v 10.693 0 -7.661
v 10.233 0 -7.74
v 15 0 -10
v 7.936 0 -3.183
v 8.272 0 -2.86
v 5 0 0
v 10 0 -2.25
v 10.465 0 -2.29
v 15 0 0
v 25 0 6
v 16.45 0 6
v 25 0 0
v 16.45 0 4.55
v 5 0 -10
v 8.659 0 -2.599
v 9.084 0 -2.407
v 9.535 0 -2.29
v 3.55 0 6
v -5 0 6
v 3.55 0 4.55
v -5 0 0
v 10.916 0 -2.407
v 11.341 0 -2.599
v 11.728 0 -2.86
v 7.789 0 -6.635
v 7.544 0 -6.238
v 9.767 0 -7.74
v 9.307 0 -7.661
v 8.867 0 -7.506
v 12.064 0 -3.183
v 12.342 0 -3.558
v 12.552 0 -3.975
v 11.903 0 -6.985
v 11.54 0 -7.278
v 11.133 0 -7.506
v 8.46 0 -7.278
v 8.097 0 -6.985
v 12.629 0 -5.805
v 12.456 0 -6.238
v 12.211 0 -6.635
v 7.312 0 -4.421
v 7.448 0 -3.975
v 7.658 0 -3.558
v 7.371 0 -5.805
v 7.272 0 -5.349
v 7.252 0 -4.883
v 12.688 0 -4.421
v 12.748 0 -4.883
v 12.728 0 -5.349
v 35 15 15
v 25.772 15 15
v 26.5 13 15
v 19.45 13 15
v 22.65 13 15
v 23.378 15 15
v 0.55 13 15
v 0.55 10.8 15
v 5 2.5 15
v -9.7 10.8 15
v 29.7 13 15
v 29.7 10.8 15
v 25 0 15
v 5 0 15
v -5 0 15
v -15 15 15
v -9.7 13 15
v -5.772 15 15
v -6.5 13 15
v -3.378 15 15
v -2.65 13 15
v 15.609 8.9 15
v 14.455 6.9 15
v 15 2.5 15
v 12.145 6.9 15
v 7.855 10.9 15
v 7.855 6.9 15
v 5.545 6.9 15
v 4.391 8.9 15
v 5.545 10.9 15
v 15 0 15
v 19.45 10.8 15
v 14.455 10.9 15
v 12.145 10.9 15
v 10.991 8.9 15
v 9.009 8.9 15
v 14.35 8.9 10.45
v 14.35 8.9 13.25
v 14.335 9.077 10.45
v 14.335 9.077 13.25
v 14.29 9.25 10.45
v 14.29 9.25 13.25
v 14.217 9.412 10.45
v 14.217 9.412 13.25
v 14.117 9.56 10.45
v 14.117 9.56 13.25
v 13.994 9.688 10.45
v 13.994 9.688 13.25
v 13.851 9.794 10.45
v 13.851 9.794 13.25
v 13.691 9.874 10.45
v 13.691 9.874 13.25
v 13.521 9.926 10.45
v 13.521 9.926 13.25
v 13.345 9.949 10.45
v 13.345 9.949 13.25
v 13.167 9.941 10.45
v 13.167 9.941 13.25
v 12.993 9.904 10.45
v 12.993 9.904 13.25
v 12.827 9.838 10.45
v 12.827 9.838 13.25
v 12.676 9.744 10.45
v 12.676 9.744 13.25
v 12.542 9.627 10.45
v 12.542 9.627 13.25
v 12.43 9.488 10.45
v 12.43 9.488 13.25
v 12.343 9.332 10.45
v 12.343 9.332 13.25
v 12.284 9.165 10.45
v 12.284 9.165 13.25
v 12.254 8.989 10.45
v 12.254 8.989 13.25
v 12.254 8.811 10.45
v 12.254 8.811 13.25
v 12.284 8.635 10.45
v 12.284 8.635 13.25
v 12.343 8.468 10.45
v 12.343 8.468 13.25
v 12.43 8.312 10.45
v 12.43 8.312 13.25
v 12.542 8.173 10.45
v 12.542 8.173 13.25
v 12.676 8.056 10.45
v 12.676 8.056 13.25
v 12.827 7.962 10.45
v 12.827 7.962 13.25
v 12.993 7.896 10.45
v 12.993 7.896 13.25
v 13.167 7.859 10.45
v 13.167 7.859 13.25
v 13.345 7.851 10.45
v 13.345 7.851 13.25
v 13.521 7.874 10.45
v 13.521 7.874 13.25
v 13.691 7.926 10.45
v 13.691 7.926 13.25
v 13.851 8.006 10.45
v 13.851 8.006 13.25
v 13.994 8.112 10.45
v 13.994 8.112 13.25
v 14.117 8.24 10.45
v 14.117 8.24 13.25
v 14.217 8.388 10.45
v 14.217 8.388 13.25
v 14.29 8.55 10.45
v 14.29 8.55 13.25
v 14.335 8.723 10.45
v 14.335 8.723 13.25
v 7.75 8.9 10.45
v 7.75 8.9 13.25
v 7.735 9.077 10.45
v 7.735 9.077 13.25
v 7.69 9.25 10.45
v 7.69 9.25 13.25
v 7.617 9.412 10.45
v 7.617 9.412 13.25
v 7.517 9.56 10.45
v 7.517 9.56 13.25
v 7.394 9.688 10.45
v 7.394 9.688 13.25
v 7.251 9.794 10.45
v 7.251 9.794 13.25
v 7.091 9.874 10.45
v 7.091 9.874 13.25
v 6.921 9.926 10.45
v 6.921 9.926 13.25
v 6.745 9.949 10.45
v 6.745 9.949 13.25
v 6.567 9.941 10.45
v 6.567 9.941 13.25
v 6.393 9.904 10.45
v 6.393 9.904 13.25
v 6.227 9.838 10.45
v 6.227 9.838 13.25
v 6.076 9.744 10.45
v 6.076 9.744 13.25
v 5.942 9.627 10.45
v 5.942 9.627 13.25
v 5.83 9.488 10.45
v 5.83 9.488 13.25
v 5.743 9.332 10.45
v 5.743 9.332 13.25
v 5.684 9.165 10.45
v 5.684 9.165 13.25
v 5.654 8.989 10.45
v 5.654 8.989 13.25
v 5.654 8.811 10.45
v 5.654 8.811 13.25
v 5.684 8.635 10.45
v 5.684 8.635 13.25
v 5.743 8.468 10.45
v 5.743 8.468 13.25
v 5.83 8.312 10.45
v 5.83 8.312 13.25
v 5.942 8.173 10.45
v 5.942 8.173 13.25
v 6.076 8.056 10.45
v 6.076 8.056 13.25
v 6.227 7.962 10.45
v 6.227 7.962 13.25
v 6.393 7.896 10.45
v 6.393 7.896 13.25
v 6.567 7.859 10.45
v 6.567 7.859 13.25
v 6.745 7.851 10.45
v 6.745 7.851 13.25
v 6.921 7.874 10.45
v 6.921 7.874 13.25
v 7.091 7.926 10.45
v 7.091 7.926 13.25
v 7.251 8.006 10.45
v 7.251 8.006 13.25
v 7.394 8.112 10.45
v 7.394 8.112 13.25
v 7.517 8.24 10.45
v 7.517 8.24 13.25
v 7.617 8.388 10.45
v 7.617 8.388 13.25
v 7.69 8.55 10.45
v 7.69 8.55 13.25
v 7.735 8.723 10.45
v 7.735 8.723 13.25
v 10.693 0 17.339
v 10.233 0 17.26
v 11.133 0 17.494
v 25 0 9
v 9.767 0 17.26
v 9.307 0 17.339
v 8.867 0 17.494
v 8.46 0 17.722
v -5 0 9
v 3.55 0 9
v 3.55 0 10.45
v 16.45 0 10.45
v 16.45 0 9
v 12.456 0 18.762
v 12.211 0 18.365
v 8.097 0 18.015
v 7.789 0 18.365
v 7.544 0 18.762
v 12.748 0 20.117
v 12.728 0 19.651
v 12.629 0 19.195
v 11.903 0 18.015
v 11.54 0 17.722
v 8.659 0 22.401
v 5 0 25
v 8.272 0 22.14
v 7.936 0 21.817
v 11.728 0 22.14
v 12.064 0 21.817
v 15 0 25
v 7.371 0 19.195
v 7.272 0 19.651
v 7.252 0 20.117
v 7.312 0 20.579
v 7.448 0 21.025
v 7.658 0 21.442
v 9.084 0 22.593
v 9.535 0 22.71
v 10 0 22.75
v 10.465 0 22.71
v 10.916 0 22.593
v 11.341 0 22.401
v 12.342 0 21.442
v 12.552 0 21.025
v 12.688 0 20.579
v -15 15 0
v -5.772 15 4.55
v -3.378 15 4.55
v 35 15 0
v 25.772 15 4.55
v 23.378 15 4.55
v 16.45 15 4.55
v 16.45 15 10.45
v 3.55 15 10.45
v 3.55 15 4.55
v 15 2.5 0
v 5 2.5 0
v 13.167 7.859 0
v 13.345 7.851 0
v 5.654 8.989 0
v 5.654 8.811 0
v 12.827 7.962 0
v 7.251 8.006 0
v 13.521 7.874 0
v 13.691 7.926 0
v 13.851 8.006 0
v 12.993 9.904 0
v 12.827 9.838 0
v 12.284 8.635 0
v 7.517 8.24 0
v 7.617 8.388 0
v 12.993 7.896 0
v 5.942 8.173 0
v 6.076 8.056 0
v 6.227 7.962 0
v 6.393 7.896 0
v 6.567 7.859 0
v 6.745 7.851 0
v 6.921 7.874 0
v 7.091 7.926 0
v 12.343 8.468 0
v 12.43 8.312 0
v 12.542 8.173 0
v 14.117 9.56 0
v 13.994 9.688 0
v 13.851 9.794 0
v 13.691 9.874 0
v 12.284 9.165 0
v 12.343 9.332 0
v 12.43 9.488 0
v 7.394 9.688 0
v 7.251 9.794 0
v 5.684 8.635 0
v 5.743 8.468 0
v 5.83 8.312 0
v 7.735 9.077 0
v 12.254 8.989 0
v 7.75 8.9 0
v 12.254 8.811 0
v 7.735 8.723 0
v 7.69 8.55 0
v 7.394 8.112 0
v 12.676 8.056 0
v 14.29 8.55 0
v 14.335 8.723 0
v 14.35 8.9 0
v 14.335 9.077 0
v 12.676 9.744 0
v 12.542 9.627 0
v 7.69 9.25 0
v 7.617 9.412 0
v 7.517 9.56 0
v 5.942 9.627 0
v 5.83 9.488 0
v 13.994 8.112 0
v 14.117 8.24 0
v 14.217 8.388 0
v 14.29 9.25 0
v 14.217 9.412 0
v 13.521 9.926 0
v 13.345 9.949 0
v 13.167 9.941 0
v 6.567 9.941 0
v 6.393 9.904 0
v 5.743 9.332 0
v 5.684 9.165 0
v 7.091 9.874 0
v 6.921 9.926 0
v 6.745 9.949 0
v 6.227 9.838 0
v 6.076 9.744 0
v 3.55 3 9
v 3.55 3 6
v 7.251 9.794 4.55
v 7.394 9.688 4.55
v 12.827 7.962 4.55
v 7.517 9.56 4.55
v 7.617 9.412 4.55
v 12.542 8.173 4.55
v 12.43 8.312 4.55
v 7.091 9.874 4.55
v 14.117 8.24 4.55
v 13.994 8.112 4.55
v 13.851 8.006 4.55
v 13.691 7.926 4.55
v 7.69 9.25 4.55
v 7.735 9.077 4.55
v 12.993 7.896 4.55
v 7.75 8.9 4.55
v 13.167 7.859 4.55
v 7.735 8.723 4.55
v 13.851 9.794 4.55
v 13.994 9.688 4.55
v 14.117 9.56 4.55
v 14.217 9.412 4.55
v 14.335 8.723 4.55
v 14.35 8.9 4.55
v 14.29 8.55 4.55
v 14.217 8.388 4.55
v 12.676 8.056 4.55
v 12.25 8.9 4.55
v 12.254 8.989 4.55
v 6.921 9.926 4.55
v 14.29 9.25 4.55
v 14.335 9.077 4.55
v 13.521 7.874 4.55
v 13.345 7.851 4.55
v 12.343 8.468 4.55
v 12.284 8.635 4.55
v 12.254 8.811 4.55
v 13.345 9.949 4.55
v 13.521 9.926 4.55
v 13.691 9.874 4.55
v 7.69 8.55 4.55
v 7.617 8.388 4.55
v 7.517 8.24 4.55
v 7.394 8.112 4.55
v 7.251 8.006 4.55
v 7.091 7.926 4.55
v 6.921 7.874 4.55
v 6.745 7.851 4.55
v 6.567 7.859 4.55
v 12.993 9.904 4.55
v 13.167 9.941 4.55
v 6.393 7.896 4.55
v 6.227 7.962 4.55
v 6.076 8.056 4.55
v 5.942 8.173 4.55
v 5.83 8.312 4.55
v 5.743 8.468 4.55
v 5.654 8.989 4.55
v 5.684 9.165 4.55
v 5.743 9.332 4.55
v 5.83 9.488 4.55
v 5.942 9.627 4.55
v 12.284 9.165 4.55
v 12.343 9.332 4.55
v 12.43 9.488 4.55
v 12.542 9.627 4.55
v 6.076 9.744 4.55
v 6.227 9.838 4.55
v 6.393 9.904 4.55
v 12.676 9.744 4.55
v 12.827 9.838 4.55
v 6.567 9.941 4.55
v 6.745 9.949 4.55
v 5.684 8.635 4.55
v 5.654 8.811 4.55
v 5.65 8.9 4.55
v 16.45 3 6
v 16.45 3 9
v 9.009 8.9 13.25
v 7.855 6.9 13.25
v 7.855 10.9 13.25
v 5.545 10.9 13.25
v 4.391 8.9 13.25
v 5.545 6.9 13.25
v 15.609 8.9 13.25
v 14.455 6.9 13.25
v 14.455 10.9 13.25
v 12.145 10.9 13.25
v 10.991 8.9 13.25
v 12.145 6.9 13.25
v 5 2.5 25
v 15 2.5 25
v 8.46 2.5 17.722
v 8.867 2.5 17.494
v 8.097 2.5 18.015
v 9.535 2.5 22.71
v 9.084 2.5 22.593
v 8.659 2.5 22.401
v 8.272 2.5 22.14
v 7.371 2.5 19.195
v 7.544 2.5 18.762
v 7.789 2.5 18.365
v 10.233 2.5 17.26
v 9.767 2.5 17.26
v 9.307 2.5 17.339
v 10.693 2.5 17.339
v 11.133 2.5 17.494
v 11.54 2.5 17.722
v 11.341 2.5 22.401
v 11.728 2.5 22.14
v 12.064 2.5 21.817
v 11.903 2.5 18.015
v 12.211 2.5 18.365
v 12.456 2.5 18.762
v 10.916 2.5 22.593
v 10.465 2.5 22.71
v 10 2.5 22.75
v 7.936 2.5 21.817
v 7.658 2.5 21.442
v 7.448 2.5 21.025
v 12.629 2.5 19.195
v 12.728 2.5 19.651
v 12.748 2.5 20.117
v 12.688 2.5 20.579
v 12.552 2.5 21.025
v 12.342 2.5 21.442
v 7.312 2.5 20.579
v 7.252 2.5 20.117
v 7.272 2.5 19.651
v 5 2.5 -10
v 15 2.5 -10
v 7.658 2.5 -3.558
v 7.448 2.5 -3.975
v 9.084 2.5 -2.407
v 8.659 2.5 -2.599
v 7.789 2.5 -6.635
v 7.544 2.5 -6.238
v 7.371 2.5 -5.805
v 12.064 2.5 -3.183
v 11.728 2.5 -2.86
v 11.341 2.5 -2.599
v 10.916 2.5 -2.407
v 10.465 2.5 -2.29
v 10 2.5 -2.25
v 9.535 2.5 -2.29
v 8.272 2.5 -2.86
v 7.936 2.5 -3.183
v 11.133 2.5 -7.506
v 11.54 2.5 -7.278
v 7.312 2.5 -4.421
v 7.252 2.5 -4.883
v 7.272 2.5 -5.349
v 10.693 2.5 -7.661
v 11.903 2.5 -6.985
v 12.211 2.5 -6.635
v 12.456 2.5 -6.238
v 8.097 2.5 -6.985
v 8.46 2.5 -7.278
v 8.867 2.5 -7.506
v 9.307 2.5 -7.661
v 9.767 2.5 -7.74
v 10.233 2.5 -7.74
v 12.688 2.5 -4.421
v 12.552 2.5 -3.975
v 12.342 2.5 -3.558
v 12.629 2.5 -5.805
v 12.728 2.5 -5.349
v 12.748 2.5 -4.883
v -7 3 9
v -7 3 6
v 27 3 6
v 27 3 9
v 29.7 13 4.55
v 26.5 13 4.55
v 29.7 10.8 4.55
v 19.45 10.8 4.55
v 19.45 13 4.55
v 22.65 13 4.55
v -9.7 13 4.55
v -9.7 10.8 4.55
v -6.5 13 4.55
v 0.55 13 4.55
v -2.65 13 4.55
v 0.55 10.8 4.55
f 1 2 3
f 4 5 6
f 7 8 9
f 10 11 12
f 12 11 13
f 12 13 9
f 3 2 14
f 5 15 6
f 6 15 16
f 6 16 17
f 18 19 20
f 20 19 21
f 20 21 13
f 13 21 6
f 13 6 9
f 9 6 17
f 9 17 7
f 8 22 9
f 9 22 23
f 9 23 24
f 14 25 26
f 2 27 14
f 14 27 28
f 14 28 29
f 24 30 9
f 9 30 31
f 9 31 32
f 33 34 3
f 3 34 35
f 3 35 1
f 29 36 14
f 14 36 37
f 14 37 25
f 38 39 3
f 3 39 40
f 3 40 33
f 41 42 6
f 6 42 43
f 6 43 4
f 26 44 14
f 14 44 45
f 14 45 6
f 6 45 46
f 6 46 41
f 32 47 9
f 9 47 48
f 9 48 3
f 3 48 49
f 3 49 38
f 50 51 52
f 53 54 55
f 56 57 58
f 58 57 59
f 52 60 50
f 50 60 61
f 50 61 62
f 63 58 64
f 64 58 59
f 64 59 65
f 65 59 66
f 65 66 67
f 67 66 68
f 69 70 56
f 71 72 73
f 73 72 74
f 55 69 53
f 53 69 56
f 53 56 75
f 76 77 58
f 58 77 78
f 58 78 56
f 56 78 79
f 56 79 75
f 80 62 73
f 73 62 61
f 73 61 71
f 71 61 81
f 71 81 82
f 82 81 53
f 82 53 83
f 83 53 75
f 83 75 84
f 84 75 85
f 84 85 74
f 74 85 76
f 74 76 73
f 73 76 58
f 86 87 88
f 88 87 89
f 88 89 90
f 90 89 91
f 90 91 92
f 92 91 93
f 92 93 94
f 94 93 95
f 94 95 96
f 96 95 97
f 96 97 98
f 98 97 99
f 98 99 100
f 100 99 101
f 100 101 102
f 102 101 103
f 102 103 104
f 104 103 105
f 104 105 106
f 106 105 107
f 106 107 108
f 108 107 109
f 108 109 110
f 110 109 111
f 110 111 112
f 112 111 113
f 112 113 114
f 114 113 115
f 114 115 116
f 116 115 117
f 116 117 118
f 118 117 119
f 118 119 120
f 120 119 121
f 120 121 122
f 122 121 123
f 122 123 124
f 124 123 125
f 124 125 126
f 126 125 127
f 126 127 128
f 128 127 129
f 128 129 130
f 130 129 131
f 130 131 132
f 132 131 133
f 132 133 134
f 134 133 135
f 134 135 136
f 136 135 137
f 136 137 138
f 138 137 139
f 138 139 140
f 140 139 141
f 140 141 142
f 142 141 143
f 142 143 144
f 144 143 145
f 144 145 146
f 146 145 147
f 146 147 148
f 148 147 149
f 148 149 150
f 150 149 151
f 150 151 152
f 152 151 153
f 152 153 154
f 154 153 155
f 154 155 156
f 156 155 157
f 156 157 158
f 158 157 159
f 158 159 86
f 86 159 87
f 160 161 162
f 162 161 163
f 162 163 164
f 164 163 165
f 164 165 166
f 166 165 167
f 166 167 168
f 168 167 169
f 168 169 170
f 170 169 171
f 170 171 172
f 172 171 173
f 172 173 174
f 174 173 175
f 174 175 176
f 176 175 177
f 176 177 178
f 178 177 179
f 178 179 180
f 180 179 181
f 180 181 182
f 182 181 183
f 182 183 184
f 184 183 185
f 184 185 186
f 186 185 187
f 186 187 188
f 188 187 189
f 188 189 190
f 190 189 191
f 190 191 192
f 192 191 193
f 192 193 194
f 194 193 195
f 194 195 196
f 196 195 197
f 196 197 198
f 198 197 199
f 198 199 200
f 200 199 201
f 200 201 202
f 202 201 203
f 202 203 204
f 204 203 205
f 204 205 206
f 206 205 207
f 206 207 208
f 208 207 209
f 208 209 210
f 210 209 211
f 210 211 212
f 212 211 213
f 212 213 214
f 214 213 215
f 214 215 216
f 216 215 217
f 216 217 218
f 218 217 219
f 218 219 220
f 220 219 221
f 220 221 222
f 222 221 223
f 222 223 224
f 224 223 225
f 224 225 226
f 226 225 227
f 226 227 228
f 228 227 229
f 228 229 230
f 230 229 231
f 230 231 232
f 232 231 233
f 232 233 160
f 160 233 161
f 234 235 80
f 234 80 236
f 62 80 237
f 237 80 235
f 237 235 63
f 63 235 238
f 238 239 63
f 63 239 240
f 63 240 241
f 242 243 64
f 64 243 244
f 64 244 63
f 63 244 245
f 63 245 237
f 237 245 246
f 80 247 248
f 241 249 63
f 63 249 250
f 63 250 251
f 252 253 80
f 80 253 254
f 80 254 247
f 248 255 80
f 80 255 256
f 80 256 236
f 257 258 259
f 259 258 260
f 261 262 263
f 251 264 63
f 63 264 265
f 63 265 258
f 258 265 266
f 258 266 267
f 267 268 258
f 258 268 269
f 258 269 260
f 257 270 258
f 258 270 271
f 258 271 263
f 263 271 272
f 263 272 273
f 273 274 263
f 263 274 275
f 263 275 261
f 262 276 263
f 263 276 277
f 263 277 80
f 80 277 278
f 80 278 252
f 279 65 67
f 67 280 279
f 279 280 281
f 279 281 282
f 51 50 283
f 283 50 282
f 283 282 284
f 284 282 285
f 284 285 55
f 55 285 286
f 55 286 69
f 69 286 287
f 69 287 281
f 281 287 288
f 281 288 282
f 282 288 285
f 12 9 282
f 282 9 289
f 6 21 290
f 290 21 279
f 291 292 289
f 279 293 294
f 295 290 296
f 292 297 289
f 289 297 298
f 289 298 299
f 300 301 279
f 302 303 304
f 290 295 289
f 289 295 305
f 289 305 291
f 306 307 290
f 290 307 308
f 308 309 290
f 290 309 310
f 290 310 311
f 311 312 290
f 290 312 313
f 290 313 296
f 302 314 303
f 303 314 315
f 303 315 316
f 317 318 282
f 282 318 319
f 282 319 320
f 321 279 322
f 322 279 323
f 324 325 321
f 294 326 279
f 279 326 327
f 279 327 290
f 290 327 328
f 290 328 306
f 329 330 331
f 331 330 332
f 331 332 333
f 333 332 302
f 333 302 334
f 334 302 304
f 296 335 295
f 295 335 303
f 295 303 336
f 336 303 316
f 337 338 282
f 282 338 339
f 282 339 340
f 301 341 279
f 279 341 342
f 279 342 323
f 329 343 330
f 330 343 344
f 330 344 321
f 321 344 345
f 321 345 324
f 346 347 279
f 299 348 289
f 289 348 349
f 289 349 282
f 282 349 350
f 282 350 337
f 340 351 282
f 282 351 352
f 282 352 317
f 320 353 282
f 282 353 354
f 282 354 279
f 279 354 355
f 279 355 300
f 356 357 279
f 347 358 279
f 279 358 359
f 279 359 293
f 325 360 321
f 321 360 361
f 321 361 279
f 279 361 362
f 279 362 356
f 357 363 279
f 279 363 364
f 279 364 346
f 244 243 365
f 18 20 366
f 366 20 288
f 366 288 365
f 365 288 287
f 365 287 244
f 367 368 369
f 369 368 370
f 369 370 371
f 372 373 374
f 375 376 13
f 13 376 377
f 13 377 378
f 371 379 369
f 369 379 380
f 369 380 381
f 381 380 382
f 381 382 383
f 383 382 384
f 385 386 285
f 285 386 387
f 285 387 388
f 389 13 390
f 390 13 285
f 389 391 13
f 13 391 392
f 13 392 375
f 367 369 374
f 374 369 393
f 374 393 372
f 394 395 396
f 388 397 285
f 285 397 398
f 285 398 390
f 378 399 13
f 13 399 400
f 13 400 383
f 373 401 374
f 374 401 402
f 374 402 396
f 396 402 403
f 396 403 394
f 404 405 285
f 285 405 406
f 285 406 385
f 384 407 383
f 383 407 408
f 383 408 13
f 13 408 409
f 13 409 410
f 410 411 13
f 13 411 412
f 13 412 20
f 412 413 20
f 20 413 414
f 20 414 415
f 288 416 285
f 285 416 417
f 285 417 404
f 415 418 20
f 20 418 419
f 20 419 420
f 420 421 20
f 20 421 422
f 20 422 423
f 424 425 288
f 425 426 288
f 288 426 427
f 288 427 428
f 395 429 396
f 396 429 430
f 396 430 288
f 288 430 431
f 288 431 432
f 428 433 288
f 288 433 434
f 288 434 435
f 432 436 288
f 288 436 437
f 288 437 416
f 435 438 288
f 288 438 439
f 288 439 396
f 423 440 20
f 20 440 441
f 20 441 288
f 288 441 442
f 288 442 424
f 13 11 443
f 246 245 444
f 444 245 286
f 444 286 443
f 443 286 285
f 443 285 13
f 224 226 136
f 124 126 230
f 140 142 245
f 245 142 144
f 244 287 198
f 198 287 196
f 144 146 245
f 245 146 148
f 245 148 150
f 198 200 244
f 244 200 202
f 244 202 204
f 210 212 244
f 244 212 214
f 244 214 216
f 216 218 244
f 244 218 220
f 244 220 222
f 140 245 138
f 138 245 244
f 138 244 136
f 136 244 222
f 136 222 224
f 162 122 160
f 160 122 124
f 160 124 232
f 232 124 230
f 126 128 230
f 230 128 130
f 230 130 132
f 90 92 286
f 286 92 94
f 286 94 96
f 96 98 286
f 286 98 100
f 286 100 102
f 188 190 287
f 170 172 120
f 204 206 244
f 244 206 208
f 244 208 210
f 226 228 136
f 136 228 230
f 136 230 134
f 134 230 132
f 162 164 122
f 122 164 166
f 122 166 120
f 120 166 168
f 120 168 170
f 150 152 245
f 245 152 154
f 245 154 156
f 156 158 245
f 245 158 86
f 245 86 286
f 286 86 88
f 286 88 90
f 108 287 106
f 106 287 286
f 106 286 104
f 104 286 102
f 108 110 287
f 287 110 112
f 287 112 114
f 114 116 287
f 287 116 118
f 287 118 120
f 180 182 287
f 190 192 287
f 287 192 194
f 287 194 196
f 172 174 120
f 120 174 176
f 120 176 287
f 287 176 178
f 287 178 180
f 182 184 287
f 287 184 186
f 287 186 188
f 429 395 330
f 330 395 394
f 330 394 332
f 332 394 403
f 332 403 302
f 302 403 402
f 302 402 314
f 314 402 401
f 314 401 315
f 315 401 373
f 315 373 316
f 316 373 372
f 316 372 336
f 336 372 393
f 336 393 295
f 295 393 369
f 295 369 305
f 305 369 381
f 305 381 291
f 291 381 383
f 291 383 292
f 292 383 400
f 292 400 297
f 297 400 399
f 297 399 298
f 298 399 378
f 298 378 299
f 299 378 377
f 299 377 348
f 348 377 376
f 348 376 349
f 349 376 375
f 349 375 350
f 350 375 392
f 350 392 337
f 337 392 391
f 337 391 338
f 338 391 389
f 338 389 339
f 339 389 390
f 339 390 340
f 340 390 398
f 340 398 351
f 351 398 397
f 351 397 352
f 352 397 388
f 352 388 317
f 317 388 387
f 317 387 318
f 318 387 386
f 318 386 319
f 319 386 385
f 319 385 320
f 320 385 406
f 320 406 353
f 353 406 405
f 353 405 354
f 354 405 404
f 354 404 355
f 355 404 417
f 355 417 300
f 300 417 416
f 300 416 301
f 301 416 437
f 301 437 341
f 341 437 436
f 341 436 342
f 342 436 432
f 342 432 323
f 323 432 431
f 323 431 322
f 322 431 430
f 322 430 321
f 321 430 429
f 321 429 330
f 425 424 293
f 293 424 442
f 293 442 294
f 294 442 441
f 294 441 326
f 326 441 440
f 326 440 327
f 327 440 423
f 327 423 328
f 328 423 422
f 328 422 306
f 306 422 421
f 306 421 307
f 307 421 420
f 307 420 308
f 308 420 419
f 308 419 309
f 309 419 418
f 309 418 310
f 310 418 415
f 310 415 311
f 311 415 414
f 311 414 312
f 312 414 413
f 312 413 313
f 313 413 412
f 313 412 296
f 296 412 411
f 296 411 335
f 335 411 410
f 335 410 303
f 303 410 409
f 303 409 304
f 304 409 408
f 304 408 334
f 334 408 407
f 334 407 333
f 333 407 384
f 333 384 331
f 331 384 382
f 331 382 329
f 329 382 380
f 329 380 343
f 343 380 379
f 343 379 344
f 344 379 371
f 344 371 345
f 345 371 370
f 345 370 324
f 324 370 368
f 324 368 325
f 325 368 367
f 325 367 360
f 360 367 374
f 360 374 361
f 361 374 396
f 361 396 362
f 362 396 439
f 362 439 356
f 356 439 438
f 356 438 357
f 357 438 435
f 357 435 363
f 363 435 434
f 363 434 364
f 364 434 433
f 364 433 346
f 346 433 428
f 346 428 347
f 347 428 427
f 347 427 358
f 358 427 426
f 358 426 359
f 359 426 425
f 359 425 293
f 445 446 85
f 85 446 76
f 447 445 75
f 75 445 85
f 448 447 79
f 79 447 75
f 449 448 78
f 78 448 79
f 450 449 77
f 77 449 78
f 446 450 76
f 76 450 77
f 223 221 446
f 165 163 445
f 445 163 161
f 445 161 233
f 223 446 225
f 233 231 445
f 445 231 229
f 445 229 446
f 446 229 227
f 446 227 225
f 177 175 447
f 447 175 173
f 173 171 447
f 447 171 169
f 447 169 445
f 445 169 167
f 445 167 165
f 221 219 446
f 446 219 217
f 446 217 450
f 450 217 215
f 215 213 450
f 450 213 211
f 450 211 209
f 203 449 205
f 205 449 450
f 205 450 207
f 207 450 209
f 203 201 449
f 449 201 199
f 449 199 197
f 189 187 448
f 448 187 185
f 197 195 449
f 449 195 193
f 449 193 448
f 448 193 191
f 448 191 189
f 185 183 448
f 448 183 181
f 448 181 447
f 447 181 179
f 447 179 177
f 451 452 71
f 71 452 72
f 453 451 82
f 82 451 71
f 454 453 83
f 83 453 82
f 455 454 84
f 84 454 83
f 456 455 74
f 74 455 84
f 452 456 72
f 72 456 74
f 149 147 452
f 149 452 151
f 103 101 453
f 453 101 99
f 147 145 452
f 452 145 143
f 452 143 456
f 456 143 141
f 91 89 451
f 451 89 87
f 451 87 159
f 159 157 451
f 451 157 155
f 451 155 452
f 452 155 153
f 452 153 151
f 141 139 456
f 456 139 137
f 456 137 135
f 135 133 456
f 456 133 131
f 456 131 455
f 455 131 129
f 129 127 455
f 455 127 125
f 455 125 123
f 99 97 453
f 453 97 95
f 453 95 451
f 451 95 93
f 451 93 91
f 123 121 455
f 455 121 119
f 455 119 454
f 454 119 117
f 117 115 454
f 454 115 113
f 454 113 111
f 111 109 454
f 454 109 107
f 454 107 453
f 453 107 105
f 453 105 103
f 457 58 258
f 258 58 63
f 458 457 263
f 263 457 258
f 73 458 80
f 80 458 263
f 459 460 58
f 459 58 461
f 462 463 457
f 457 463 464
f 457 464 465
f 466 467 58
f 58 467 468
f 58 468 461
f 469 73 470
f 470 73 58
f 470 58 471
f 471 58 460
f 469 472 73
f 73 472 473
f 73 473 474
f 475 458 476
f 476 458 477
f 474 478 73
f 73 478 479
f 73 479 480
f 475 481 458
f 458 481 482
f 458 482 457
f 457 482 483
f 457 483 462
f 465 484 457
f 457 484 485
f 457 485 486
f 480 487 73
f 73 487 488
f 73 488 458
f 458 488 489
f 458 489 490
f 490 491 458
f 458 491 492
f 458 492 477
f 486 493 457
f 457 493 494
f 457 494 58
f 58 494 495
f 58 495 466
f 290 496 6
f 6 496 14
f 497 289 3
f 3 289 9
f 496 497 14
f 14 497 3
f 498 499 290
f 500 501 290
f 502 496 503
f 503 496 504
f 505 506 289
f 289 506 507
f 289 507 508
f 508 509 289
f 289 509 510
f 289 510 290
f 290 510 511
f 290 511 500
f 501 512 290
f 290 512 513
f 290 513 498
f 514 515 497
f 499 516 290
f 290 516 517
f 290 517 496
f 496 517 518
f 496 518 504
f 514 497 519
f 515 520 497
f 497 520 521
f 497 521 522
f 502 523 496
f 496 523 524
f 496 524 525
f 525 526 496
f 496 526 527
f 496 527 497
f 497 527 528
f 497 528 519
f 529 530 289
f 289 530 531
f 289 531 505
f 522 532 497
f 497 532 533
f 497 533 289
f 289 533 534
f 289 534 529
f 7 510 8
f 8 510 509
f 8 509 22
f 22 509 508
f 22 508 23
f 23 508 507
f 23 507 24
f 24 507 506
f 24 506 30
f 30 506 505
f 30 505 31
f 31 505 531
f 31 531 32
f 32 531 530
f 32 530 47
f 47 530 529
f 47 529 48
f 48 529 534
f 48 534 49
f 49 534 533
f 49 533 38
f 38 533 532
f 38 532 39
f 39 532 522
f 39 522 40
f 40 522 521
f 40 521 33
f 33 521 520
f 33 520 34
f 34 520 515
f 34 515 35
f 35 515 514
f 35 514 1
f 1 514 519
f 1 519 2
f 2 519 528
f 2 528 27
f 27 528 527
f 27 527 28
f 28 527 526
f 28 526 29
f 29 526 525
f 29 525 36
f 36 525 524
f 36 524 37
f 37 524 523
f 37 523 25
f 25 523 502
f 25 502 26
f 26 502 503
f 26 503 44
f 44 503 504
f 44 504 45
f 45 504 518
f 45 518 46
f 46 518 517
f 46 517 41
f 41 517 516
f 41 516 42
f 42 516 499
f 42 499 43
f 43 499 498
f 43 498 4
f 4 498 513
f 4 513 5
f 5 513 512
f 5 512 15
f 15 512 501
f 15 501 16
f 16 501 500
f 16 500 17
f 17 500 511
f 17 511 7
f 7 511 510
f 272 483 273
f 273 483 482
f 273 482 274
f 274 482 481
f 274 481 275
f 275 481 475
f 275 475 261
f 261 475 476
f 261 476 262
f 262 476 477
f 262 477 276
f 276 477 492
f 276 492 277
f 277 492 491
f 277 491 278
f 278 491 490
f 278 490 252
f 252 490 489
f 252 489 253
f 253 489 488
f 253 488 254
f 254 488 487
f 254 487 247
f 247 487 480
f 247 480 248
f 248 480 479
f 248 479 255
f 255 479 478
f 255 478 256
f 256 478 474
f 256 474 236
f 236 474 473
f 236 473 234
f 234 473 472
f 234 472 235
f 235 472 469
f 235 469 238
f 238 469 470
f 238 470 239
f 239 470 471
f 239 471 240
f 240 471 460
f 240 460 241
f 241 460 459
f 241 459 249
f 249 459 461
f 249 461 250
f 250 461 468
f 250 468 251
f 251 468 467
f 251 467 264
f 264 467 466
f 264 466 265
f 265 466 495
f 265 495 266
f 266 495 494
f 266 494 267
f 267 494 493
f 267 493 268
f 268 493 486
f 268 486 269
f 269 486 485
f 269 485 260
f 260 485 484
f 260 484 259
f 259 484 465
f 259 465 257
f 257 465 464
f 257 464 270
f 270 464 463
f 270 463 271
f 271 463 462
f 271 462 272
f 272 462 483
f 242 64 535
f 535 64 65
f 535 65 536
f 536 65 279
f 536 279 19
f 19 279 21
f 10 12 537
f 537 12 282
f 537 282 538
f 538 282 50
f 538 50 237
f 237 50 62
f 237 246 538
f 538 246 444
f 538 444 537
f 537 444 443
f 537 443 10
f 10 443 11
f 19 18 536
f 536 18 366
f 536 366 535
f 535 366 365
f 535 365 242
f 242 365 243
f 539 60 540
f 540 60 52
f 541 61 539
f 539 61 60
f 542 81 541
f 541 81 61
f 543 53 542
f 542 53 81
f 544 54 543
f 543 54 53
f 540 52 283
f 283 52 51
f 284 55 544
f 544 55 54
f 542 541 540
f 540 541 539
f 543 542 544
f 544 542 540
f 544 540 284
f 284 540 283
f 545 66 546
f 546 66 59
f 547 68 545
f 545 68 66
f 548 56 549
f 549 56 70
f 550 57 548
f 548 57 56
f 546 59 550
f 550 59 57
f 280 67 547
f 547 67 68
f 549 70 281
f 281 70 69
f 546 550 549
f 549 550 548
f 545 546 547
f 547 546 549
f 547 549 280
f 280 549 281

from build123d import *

# Parameters (mm, degrees)
SKETCH1_W                = 20
SKETCH1_H                = 15
SWITCHCASE_DEPTH         = 15
SKETCH2_W                = 12.9
SKETCH2_H                = 5.9
SWITCHCAVITY_DEPTH       = 30.154759474
SWITCHM2HOLES_DEPTH      = 28.096171316
SWITCHM2HOLES_DEPTH_BACK = 28.096171316
SKETCH3_R                = 1.05
NUTINSERTS_DEPTH         = 30.154759474
NUTINSERTS_DEPTH_BACK    = 1.75
SKETCH4_W                = 10
SKETCH4_H                = 10
MOUNTTABS_DEPTH          = 2.5
M5SCREWHOLES_REACH       = 36.369
SKETCH6_R                = 2.75
WINGS_DEPTH              = 15
WIRECHANNEL_DEPTH        = 43.884758365
WIRECHANNEL_DEPTH_BACK   = 43.884758365
SKETCH8_W                = 3
SKETCH8_H                = 3
BUMPERCHANNEL_DEPTH      = 46.552167896
BUMPERCHANNEL_DEPTH_BACK = 10.45


with BuildPart() as part:
    # Sketch1 → SwitchCase (new body)
    with BuildSketch(Plane.XY):
        with Locations((10, 7.5)):
            Rectangle(SKETCH1_W, SKETCH1_H)
    extrude(amount=SWITCHCASE_DEPTH)

    # Sketch2 → SwitchCavity (cut, through all)
    with BuildSketch(Plane(origin=(0, 15, 0), x_dir=(1, 0, 0), z_dir=(0, 1, 0))):
        with Locations((10, -7.5)):
            Rectangle(SKETCH2_W, SKETCH2_H)
    extrude(amount=-SWITCHCAVITY_DEPTH, mode=Mode.SUBTRACT)

    # Sketch3 → SwitchM2Holes (cut, two sides: drawn at the far end of the back side and taken through both)
    with BuildSketch(Plane.XY.offset(4.55).offset(-SWITCHM2HOLES_DEPTH_BACK)):
        with Locations((6.7, 8.9)):
            Circle(SKETCH3_R)
        with Locations((13.3, 8.9)):
            Circle(SKETCH3_R)
    extrude(amount=SWITCHM2HOLES_DEPTH + SWITCHM2HOLES_DEPTH_BACK, mode=Mode.SUBTRACT)

    # Sketch5 → NutInserts (cut, two sides: drawn at the far end of the back side and taken through both)
    with BuildSketch(Plane.XY.offset(15).offset(-NUTINSERTS_DEPTH_BACK)):
        Polygon((9.009401077, 8.9), (7.854700538, 10.9), (5.545299462, 10.9), (4.390598923, 8.9), (5.545299462, 6.9), (7.854700538, 6.9), align=None)
        Polygon((15.609401077, 8.9), (14.454700538, 10.9), (12.145299462, 10.9), (10.990598923, 8.9), (12.145299462, 6.9), (14.454700538, 6.9), align=None)
    extrude(amount=NUTINSERTS_DEPTH + NUTINSERTS_DEPTH_BACK, mode=Mode.SUBTRACT)

    # Sketch4 → MountTabs (add)
    with BuildSketch(Plane.XZ):
        with Locations((10, 20)):
            Rectangle(SKETCH4_W, SKETCH4_H)
        with Locations((10, -5)):
            Rectangle(SKETCH4_W, SKETCH4_H)
    extrude(amount=-MOUNTTABS_DEPTH)

    # Sketch6 → M5ScrewHoles (cut, up to next)
    with BuildSketch(Plane(origin=(0, 2.5, 0), x_dir=(1, 0, 0), z_dir=(0, 1, 0)), mode=Mode.PRIVATE) as m5screwholes_sk1:
        with Locations(Location((10, -20, 0), (0, 0, 270))):
            Circle(SKETCH6_R)
    m5screwholes_tool1 = extrude(m5screwholes_sk1.sketch, amount=-M5SCREWHOLES_REACH, mode=Mode.PRIVATE) & part.part
    # Sketch6 → M5ScrewHoles (cut, up to next)
    with BuildSketch(Plane(origin=(0, 2.5, 0), x_dir=(1, 0, 0), z_dir=(0, 1, 0)), mode=Mode.PRIVATE) as m5screwholes_sk2:
        with Locations(Location((10, 5, 0), (0, 0, 270))):
            Circle(SKETCH6_R)
    m5screwholes_tool2 = extrude(m5screwholes_sk2.sketch, amount=-M5SCREWHOLES_REACH, mode=Mode.PRIVATE) & part.part
    add(m5screwholes_tool1.solids().sort_by_distance((10, 2.5, 20))[0], mode=Mode.SUBTRACT)
    add(m5screwholes_tool2.solids().sort_by_distance((10, 2.5, -5))[0], mode=Mode.SUBTRACT)

    # Sketch7 → Wings (add)
    with BuildSketch(Plane.XY.offset(15)):
        Polygon((0, 15), (-15, 15), (-5, 0), (0, 0), align=None)
        Polygon((20, 15), (35, 15), (25, 0), (20, 0), align=None)
    extrude(amount=-WINGS_DEPTH)

    # Sketch8 → WireChannel (cut, two sides: drawn at the far end of the back side and taken through both)
    with BuildSketch(Plane.ZY.offset(-16.45).offset(-WIRECHANNEL_DEPTH_BACK)):
        with Locations((7.5, 1.5)):
            Rectangle(SKETCH8_W, SKETCH8_H)
    extrude(amount=WIRECHANNEL_DEPTH + WIRECHANNEL_DEPTH_BACK, mode=Mode.SUBTRACT)

    # Sketch9 → BumperChannel (cut, two sides: drawn at the far end of the back side and taken through both)
    with BuildSketch(Plane.XY.offset(15).offset(-BUMPERCHANNEL_DEPTH_BACK)):
        Polygon((-9.7, 10.8), (0.55, 10.8), (0.55, 13), (-2.65, 13), (-3.377940469, 15), (-5.772059531, 15), (-6.5, 13), (-9.7, 13), align=None)
        Polygon((26.5, 13), (29.7, 13), (29.7, 10.8), (19.45, 10.8), (19.45, 13), (22.65, 13), (23.377940469, 15), (25.772059531, 15), align=None)
    extrude(amount=BUMPERCHANNEL_DEPTH + BUMPERCHANNEL_DEPTH_BACK, mode=Mode.SUBTRACT)


solid = part.part
